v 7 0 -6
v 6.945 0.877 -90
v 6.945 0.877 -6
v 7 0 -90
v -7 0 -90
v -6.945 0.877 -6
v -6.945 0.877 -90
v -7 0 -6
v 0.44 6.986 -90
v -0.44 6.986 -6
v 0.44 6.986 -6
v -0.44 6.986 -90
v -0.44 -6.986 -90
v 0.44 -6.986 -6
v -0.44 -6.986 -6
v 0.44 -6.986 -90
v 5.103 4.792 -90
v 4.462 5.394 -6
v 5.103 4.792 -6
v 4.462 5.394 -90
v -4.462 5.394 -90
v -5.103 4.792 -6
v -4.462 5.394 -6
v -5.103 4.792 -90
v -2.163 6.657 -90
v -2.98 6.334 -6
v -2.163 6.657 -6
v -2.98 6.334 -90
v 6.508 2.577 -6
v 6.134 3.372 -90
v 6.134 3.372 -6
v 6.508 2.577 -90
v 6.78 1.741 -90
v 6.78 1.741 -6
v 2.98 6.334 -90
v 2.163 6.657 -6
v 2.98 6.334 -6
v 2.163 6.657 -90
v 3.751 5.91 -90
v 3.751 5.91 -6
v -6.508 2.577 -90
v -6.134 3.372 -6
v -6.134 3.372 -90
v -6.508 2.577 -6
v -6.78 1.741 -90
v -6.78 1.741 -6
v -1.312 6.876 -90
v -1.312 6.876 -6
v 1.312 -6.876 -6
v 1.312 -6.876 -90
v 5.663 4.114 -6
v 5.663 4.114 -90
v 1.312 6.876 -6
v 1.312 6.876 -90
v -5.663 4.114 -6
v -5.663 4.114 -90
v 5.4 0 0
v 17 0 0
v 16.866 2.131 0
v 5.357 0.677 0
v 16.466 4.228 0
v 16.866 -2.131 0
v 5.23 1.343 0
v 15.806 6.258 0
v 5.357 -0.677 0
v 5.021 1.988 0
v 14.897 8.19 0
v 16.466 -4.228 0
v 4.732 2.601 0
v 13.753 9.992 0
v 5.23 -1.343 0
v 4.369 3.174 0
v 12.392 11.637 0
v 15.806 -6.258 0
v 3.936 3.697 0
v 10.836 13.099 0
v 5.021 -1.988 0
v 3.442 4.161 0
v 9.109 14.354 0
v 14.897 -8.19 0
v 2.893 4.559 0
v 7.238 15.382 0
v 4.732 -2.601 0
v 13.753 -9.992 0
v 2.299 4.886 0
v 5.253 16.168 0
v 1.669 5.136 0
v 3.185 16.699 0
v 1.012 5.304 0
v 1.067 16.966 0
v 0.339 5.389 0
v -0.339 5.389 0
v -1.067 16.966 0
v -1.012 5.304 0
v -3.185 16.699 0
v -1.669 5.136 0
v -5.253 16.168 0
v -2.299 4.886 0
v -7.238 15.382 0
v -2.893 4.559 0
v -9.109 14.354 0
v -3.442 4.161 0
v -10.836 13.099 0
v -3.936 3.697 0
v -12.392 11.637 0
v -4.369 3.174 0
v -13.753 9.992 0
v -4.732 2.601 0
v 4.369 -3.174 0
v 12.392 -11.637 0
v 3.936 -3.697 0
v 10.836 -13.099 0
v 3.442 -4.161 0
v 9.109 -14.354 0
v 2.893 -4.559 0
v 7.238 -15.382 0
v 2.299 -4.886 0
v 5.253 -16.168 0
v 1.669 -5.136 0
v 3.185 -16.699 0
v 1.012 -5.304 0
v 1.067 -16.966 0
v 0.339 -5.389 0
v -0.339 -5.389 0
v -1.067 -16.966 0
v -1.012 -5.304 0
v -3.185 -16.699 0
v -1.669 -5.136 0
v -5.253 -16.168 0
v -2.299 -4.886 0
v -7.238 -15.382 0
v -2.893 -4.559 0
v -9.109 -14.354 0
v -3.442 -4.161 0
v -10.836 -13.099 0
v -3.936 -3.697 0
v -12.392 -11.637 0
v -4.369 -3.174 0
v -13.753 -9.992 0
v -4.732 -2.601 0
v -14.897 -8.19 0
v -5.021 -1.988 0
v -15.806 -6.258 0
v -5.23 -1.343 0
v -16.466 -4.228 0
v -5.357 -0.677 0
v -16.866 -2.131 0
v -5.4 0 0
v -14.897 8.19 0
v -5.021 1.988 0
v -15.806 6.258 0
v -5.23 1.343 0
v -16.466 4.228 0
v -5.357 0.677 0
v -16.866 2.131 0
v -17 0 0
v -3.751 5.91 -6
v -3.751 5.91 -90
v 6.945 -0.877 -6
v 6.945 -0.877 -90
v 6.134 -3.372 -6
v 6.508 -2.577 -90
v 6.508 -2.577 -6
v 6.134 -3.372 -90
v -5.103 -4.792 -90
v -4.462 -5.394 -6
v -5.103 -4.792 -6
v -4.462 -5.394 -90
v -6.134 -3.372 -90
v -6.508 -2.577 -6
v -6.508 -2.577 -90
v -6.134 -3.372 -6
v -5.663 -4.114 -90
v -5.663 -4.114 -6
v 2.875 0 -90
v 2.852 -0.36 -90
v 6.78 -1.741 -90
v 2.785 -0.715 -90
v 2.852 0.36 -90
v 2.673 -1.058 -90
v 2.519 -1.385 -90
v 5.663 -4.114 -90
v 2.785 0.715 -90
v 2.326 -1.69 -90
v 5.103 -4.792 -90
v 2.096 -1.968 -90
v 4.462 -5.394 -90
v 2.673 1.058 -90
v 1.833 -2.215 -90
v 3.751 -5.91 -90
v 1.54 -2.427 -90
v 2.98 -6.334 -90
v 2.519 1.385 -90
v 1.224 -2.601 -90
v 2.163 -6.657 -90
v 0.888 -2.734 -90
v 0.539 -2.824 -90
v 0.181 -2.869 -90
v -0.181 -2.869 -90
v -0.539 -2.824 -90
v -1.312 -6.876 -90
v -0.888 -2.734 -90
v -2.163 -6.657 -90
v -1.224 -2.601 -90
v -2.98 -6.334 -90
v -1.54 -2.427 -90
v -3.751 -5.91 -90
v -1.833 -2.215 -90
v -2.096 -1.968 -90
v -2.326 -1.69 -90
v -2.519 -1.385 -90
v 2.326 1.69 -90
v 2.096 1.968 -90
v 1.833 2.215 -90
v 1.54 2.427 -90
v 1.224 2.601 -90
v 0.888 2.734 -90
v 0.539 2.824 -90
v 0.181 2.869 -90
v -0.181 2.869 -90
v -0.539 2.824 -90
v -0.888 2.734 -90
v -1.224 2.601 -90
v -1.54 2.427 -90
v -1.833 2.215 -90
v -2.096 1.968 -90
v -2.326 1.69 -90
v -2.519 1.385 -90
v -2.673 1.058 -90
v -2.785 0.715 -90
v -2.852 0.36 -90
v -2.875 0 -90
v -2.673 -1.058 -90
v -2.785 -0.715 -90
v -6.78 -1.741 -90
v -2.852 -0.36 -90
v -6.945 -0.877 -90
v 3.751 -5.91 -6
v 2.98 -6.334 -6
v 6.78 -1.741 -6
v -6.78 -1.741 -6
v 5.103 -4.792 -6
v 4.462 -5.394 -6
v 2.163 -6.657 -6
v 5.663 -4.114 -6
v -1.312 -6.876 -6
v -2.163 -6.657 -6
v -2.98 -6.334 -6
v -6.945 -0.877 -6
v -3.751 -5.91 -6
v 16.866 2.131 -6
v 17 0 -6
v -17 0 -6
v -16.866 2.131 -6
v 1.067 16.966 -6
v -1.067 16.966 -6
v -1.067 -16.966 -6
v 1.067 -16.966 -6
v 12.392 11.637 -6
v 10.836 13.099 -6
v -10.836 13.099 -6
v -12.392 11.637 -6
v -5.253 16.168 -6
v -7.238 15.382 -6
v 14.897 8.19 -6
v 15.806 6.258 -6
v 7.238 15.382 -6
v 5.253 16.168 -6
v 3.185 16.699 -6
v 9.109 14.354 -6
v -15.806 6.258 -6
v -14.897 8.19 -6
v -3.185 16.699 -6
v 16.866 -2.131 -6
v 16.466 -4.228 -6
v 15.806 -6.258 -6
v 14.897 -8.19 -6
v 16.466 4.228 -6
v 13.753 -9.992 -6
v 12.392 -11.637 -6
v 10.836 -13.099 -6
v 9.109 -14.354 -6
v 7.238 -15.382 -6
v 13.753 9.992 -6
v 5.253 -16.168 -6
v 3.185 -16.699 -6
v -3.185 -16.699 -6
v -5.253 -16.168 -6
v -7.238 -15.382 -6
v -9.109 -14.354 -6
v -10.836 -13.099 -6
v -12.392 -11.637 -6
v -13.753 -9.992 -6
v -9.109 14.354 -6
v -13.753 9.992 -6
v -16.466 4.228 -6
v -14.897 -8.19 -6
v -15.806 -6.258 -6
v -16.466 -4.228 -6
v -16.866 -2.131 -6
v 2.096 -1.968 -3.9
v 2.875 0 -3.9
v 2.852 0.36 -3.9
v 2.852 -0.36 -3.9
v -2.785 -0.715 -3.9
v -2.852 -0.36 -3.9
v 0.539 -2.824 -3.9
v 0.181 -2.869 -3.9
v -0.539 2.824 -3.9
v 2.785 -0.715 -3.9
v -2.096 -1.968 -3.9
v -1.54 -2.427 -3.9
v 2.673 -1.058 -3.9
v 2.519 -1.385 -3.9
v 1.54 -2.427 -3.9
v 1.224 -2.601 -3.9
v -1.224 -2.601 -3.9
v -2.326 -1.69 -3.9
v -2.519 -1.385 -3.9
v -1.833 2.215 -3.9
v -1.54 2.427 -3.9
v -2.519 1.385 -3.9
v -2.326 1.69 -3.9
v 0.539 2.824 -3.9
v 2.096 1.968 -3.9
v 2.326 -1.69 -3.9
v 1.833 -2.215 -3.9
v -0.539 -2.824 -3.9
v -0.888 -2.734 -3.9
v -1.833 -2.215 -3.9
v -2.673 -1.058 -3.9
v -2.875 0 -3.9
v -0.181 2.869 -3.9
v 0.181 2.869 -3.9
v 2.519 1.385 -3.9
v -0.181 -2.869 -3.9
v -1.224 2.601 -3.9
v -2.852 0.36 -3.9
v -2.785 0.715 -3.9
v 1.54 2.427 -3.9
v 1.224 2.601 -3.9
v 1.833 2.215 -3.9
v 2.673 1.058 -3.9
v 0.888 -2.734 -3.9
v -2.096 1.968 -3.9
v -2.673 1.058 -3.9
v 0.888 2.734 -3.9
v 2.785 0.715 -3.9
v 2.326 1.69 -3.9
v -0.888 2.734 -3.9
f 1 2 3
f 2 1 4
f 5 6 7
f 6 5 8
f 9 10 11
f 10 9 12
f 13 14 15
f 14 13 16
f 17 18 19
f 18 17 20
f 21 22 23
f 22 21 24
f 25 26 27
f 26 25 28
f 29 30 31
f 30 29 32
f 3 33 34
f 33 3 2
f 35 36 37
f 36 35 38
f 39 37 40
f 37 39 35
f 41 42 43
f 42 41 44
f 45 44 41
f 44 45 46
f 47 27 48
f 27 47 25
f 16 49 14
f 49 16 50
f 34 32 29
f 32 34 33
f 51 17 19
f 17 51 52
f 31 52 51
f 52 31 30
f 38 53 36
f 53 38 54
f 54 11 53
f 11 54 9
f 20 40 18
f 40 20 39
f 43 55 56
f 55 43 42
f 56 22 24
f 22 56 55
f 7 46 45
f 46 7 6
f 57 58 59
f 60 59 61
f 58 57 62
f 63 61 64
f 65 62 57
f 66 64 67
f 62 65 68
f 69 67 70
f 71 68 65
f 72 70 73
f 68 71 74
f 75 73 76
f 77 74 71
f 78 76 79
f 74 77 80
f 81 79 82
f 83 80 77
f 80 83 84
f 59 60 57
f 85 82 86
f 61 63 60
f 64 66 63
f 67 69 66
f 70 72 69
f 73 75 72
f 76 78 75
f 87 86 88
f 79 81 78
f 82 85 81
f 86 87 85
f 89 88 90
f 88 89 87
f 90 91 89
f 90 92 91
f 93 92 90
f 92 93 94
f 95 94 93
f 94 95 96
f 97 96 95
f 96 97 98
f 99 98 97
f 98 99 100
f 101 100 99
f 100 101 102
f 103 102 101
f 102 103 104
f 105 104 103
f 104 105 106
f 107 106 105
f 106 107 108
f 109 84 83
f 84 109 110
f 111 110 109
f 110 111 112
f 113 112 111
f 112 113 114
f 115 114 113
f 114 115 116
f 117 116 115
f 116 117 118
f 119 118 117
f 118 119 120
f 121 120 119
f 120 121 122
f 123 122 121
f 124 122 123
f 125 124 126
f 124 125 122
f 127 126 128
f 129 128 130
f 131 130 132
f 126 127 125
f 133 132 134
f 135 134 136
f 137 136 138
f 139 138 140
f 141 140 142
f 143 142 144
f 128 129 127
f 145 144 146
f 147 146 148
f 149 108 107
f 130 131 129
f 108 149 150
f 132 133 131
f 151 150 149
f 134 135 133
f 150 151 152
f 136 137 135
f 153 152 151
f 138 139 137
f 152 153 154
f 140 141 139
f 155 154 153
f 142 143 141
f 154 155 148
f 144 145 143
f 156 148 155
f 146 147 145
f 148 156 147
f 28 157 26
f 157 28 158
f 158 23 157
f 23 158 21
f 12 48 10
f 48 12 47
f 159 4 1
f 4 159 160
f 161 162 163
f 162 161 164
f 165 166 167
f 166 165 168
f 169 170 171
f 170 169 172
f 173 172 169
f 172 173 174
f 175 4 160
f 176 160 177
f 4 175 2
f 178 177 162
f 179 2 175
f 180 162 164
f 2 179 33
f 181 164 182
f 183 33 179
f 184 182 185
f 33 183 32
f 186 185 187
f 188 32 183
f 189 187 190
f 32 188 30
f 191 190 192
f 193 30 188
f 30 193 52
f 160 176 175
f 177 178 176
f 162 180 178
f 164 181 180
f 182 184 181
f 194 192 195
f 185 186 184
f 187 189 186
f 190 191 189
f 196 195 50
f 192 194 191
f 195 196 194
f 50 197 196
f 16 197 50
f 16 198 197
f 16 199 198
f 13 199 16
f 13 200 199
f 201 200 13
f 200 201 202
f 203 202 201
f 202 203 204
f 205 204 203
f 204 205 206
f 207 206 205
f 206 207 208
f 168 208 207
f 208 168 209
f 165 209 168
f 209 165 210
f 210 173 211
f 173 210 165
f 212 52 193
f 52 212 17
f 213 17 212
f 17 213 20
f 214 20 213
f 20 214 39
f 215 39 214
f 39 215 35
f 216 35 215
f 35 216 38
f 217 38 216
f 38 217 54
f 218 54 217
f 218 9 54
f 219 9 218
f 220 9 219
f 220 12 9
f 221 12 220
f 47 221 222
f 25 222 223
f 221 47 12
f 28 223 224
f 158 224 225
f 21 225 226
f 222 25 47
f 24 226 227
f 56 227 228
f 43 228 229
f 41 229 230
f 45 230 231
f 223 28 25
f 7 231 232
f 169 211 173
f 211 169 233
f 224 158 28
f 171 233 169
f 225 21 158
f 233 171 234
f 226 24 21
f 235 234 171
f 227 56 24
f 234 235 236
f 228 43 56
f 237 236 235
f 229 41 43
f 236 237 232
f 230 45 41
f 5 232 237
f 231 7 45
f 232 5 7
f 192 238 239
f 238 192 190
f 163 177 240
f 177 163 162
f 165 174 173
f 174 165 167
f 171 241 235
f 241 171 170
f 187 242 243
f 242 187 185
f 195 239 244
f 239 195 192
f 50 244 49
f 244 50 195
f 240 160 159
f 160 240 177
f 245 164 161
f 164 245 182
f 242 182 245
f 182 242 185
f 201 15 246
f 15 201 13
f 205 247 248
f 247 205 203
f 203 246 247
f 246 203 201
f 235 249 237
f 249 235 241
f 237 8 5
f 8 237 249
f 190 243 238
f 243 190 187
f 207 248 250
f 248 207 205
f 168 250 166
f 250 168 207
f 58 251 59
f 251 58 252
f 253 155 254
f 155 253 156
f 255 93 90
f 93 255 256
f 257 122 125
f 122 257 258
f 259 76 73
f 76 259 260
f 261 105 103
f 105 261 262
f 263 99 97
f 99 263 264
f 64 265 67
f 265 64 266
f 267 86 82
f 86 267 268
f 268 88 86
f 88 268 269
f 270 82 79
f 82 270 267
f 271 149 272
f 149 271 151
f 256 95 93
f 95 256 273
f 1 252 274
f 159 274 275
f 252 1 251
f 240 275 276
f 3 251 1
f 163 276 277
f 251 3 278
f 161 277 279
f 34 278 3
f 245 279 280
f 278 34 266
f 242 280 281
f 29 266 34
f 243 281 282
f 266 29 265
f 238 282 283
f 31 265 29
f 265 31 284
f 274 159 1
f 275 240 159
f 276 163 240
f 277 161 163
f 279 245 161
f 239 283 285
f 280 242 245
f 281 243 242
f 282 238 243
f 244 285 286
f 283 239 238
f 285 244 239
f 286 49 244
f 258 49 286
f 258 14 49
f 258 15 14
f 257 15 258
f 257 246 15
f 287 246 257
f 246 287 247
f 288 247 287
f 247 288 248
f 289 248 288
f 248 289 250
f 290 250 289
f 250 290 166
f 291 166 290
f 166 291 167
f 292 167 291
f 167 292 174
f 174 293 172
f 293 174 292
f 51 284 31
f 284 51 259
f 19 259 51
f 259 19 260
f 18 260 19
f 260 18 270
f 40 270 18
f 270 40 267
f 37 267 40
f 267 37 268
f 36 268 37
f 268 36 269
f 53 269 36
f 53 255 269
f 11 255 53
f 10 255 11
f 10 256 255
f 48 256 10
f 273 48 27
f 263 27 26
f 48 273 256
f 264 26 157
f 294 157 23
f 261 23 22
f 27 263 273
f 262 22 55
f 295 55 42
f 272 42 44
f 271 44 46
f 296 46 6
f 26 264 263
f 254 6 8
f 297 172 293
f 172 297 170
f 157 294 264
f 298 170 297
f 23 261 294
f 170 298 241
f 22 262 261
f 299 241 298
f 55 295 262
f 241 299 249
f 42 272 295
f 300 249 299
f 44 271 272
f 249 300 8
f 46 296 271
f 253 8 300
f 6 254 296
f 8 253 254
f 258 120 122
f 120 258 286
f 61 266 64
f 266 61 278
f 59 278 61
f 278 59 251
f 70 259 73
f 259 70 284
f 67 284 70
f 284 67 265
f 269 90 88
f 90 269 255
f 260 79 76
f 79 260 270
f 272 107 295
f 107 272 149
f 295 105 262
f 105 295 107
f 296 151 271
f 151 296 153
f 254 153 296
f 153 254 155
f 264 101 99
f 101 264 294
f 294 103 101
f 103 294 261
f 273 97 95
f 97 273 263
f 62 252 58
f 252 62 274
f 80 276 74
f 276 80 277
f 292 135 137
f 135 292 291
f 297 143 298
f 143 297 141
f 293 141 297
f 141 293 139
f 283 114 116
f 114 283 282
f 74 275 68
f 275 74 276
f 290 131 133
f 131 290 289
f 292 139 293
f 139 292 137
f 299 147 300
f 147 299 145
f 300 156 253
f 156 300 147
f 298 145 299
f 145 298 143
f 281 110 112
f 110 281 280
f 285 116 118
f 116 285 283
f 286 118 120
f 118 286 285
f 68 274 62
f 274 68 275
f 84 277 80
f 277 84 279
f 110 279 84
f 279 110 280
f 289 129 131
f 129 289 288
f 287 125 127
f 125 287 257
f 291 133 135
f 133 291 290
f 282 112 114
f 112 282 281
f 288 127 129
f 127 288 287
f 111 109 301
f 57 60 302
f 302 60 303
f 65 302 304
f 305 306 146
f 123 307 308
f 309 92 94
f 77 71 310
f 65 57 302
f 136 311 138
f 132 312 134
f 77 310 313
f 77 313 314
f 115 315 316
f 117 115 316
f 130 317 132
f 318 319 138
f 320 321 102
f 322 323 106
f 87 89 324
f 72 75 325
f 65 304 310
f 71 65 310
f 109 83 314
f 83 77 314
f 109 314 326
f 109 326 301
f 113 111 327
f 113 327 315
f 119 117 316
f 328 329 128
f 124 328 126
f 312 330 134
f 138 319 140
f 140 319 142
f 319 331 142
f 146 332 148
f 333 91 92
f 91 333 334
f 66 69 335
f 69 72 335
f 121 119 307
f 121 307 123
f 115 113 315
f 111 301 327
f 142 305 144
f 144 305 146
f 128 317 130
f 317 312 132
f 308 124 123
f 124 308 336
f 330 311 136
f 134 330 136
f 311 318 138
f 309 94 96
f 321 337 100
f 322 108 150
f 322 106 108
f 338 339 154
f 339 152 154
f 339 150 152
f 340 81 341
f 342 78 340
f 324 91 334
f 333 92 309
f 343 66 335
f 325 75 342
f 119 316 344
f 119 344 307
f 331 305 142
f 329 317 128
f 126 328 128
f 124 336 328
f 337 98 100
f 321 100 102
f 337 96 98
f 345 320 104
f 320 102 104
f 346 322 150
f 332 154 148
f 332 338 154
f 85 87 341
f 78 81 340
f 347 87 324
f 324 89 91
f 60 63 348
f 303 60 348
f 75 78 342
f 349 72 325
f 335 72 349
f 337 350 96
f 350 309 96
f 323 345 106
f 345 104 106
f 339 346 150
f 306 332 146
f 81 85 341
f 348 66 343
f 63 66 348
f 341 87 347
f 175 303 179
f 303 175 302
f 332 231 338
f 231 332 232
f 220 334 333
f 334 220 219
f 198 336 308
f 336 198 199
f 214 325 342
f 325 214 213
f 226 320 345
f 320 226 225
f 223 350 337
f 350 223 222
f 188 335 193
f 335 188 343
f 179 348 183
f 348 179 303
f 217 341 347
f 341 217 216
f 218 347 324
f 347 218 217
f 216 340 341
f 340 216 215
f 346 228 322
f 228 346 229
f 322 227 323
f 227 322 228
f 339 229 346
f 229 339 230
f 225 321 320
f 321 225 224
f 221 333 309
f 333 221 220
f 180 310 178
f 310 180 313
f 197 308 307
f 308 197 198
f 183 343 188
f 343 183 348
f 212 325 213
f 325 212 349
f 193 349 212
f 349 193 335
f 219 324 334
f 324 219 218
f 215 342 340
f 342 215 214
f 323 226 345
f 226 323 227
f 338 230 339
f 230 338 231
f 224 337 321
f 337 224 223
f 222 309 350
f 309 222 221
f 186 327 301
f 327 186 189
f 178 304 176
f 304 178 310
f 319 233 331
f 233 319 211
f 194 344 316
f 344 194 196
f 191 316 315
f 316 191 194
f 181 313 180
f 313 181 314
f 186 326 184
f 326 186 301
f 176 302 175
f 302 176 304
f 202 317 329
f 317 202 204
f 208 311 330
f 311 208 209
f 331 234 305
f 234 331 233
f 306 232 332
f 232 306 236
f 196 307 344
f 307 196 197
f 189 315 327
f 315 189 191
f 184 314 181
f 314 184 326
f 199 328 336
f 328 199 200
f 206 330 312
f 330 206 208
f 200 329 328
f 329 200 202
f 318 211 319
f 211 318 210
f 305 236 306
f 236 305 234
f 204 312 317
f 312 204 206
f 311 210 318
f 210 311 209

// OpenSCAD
$fn = 50;


difference() {
	union() {
		translate(v = [0, 0, -90.0000000000]) {
			cylinder(h = 90, r = 7.0000000000);
		}
		translate(v = [0, 0, -6.0000000000]) {
			cylinder(h = 6, r = 17.0000000000);
		}
	}
	union() {
		translate(v = [0, 0, 0]) {
			rotate(a = [0, 0, 0]) {
				difference() {
					union() {
						#translate(v = [0, 0, -90.0000000000]) {
							cylinder(h = 90, r = 2.6000000000);
						}
						#translate(v = [0, 0, -3.9000000000]) {
							cylinder(h = 3.9000000000, r = 7.0000000000, r1 = 2.8750000000, r2 = 5.4000000000);
						}
						#translate(v = [0, 0, -90.0000000000]) {
							cylinder(h = 90, r = 2.8750000000);
						}
						#translate(v = [0, 0, -90.0000000000]) {
							cylinder(h = 90, r = 2.6000000000);
						}
					}
					union();
				}
			}
		}
	}
}
